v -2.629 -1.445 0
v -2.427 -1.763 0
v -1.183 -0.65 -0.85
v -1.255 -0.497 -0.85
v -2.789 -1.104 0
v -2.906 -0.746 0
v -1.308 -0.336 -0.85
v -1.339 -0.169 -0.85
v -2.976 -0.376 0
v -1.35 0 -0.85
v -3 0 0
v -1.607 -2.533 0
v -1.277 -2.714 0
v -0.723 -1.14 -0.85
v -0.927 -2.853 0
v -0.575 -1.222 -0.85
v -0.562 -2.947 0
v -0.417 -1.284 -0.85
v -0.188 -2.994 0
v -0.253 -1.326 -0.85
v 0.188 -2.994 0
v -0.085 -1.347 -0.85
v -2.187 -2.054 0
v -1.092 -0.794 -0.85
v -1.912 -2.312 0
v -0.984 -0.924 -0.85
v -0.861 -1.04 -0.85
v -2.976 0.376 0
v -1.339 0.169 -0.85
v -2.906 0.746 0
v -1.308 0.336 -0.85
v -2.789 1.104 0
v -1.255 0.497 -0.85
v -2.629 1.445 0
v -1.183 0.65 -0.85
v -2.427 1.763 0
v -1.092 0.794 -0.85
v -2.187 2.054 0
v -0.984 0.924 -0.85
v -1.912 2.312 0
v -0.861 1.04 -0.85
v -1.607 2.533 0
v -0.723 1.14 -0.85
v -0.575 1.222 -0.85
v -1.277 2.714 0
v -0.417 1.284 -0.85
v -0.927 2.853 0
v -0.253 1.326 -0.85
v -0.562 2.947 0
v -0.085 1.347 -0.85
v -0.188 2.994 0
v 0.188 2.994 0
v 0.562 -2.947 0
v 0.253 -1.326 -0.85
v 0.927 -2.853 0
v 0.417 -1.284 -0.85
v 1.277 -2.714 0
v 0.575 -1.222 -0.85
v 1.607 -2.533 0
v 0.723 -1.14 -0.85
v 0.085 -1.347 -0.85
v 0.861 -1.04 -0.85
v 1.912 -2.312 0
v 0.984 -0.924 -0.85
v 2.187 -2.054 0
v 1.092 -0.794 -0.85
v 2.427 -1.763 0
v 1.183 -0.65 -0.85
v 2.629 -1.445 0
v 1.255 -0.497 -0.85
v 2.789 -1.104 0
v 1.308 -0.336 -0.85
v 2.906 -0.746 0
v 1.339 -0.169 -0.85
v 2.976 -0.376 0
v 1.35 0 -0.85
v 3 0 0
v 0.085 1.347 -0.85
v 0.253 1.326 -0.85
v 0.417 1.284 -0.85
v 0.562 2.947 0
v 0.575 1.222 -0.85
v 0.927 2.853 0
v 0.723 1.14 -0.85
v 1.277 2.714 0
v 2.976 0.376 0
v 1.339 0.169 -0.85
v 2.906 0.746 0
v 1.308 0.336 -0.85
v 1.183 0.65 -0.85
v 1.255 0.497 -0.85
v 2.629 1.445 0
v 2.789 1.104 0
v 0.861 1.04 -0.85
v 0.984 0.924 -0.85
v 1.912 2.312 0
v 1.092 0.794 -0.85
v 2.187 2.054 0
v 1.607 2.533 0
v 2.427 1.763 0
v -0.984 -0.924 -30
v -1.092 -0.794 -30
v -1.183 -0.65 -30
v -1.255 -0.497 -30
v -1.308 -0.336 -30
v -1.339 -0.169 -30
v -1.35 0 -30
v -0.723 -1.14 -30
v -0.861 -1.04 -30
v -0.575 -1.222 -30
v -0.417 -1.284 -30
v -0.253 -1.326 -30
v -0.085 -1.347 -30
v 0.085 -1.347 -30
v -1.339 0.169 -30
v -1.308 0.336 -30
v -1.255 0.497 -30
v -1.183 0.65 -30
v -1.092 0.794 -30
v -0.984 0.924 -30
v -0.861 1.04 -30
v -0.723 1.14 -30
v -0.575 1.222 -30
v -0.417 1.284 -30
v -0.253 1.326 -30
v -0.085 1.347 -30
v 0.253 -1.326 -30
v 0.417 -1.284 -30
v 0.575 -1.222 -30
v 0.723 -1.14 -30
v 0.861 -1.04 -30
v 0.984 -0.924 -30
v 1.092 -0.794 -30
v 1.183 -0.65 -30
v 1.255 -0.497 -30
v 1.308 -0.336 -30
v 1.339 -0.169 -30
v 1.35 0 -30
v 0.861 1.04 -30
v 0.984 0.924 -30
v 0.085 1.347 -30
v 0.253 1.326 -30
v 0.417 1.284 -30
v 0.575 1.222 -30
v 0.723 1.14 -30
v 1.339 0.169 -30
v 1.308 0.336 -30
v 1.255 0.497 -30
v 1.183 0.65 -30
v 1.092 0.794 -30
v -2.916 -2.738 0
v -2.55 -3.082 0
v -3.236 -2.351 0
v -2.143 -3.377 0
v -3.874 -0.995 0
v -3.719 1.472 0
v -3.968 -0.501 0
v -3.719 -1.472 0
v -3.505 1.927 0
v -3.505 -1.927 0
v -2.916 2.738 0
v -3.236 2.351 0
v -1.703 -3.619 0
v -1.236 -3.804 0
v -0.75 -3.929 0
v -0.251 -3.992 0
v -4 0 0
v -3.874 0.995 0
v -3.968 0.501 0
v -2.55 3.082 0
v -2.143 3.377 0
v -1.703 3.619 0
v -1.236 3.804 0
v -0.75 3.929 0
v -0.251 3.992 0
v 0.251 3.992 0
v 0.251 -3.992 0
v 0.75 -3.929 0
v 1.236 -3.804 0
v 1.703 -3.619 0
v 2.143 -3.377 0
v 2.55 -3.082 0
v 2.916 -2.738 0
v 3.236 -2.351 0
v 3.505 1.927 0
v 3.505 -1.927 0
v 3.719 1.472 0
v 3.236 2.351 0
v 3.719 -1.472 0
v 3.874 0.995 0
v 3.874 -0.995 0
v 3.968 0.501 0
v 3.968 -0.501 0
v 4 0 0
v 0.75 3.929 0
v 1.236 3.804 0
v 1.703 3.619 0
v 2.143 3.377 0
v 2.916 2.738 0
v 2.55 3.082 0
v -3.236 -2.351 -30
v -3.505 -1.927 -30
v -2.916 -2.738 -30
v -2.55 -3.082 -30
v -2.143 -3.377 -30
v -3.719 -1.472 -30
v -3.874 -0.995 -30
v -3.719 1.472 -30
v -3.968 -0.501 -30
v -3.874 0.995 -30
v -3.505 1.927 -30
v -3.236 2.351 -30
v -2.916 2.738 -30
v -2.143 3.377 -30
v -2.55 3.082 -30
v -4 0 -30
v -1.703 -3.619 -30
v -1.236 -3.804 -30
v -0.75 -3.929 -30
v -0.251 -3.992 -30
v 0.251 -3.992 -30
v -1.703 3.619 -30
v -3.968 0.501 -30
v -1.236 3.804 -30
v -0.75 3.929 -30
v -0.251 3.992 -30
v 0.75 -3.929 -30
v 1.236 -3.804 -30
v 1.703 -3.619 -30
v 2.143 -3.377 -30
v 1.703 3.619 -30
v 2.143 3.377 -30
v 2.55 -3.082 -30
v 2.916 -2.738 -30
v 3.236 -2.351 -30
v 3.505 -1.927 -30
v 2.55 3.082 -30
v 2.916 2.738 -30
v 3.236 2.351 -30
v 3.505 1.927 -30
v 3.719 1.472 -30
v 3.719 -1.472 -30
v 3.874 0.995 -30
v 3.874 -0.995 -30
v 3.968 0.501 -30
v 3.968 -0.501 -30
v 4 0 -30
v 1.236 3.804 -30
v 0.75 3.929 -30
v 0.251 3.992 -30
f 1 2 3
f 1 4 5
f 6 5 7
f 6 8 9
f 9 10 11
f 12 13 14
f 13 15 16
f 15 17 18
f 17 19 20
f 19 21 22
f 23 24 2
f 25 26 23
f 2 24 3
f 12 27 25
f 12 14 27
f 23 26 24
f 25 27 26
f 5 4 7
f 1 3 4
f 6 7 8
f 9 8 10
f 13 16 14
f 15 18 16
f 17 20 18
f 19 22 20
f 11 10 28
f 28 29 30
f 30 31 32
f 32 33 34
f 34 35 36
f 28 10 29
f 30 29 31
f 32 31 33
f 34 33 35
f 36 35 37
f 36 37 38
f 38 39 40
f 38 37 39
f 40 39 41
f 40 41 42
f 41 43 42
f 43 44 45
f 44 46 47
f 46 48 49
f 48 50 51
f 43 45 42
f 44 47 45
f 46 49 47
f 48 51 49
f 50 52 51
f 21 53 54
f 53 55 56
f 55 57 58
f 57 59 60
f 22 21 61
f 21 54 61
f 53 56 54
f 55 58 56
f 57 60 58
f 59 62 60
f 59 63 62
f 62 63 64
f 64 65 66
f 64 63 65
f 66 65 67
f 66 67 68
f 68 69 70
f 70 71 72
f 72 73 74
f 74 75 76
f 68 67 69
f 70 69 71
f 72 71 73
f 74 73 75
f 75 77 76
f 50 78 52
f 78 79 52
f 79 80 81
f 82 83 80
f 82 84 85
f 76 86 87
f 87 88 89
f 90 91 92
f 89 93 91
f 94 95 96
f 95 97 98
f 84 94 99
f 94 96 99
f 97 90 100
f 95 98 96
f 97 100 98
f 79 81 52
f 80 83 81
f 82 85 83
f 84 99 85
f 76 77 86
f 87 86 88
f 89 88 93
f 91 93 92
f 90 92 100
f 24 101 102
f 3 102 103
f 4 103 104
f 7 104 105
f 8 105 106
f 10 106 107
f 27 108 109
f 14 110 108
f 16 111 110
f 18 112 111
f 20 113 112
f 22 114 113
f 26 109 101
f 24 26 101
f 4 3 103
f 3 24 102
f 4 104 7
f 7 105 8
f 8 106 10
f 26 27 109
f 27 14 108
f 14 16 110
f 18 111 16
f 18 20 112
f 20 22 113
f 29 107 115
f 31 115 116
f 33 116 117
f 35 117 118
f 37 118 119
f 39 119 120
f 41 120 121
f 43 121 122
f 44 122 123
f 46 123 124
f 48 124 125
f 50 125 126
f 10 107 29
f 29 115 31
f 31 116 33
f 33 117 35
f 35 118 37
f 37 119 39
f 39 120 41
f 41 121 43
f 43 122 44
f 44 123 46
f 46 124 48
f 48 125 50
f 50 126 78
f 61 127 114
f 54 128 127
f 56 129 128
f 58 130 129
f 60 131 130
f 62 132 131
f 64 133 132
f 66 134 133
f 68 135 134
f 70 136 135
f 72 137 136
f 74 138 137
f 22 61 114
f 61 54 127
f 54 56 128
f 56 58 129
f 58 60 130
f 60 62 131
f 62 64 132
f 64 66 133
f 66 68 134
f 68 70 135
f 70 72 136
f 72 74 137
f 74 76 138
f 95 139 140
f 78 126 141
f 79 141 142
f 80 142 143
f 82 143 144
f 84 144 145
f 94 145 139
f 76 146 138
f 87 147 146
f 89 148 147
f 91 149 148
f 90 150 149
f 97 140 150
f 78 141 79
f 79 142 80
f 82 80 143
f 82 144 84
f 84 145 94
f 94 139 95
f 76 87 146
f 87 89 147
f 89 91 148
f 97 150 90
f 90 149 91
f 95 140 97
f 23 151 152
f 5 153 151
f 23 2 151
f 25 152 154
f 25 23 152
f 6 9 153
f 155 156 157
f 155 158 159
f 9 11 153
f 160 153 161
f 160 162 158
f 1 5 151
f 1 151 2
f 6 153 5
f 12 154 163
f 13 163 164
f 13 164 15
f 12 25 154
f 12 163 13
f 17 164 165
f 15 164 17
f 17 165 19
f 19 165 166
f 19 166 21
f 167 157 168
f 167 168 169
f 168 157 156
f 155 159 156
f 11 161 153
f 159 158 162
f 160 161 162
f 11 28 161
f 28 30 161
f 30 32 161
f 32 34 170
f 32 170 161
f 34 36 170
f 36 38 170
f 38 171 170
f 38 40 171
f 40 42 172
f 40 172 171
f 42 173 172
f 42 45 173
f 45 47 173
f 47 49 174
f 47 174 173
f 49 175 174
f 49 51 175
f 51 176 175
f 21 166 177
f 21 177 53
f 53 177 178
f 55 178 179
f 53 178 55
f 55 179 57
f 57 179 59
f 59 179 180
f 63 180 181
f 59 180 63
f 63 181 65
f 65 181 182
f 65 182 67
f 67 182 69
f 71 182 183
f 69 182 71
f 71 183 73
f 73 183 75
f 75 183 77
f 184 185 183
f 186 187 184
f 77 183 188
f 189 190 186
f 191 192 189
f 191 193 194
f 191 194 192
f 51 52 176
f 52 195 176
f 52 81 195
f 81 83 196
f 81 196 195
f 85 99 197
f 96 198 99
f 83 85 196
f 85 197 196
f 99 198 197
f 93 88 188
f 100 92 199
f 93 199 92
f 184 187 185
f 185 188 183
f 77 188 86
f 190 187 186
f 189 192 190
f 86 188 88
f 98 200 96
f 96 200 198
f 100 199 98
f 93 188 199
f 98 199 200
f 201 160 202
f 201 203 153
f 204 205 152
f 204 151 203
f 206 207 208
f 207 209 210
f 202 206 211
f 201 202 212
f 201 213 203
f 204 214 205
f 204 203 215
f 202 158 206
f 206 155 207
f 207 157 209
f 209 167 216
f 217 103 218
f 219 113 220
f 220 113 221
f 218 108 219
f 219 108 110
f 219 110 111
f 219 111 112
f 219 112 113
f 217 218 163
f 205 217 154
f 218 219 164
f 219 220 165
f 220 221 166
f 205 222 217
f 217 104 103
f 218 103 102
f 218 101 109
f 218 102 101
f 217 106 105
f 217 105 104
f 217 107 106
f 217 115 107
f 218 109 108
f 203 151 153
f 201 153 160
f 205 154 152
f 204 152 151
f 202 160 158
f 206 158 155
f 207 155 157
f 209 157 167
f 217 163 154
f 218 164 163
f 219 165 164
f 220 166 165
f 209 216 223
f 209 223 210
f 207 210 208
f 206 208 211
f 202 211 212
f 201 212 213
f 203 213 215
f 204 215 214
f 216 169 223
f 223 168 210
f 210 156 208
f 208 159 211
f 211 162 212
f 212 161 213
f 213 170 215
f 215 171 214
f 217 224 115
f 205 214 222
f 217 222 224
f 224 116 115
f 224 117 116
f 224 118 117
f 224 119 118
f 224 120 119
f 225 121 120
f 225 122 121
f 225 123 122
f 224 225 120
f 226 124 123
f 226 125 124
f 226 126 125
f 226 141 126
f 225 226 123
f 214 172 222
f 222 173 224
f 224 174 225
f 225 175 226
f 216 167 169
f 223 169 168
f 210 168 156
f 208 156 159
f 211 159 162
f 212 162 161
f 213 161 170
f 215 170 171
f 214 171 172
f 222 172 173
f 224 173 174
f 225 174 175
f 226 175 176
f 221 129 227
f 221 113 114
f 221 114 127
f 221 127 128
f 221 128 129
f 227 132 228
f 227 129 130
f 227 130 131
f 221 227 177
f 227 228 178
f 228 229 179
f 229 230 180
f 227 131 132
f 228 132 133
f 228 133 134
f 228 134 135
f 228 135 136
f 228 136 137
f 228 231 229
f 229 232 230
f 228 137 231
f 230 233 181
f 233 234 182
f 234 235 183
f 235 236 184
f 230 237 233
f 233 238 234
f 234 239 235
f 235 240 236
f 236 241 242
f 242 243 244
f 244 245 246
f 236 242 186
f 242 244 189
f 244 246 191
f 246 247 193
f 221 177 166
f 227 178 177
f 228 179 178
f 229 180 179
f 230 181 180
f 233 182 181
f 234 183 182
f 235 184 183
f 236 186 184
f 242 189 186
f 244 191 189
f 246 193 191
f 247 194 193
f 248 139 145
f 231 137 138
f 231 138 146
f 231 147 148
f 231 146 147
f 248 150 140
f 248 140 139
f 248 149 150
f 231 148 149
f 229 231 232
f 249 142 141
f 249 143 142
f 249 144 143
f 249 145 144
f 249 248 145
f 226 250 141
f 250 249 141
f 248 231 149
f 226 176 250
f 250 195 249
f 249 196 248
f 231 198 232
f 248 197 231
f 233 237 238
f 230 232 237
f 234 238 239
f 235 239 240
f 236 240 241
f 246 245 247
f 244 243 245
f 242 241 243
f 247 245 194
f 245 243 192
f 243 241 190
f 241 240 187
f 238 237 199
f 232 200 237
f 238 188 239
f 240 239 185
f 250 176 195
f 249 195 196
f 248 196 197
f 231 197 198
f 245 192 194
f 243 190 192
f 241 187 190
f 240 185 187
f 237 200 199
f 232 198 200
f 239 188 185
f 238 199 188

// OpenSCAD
$fn = 50;

difference() {
	union() {
		translate(v = [0, 0, -30.0]) {
			cylinder(h = 33, r = 4.0);
		}
	}
	union() {
		translate(v = [0, 0, 0]) {
			rotate(a = [0, 0, 0]) {
				difference() {
					union() {
						translate(v = [0, 0, -33.0]) {
							cylinder(h = 33, r = 1.0);
						}
						translate(v = [0, 0, -0.85]) {
							cylinder(h = 0.85, r1 = 1.35, r2 = 3.0);
						}
						translate(v = [0, 0, -33.0]) {
							cylinder(h = 33, r = 1.35);
						}
						translate(v = [0, 0, -33.0]) {
							cylinder(h = 33, r = 1.0);
						}
					}
					union();
				}
			}
		}
		#cylinder(h = 3, r = 5.0);
	}
}
